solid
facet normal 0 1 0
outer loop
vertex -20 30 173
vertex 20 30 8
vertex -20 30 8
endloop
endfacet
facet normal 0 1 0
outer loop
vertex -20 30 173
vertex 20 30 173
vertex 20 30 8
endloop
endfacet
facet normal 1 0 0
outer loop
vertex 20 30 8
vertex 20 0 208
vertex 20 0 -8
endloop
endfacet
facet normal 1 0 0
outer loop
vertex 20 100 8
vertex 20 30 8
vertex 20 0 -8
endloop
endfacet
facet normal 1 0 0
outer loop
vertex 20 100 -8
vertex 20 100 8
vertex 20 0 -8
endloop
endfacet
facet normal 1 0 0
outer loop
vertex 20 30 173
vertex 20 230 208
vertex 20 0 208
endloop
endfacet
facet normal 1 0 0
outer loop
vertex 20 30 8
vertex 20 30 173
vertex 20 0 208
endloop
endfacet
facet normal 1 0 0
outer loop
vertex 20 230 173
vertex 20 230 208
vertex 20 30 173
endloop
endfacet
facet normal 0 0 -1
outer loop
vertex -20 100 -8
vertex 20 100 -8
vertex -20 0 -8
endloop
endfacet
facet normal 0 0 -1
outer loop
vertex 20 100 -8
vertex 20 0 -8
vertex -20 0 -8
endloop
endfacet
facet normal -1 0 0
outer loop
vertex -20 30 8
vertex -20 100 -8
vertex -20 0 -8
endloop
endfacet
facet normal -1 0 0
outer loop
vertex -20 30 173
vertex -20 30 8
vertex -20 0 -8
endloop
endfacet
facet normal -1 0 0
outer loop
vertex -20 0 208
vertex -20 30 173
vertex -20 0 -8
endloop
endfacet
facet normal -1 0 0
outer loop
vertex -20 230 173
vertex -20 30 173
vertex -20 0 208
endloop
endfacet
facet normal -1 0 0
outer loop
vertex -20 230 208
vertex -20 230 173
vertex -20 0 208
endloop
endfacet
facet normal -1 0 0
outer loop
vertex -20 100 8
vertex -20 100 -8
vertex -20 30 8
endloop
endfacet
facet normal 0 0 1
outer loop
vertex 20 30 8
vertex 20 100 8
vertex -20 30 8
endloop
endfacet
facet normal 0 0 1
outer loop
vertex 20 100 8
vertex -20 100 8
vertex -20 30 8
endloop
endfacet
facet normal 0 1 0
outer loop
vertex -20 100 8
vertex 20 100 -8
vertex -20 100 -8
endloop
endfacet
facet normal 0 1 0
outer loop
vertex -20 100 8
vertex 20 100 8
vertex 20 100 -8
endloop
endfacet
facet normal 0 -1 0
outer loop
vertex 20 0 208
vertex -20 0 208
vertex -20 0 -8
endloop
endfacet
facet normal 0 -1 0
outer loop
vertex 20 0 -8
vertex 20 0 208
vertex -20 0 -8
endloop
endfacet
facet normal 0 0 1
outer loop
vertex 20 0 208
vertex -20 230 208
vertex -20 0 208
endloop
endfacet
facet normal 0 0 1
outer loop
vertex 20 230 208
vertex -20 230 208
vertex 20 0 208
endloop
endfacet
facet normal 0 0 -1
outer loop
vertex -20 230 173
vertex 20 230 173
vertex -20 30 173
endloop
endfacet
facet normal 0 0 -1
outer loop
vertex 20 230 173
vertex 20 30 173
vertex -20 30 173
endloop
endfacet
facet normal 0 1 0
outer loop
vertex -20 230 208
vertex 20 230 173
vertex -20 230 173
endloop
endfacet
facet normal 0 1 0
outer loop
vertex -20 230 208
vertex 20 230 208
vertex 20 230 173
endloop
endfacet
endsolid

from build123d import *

# Parameters (mm, degrees)
SKETCH_1_W      = 40
SKETCH_1_H      = 16
EXTRUDE_1_DEPTH = 100
SKETCH_2_W      = 40
SKETCH_2_H      = 30
EXTRUDE_2_DEPTH = 200
SKETCH_3_W      = 40
SKETCH_3_H      = 35
EXTRUDE_3_DEPTH = 200


with BuildPart() as part:
    # 草图1 → 凸台-拉伸1 (new body)
    with BuildSketch(Plane(origin=(0, 0, 0), x_dir=(1, 0, 0), z_dir=(0, 1, 0))):
        Rectangle(SKETCH_1_W, SKETCH_1_H)
    extrude(amount=EXTRUDE_1_DEPTH)

    # 草图2 → 凸台-拉伸2 (add)
    with BuildSketch(Plane.XY.offset(8)):
        with Locations((0, 15)):
            Rectangle(SKETCH_2_W, SKETCH_2_H)
    extrude(amount=EXTRUDE_2_DEPTH)

    # 草图3 → 凸台-拉伸3 (add)
    with BuildSketch(Plane(origin=(0, 30, 0), x_dir=(1, 0, 0), z_dir=(0, 1, 0))):
        with Locations((0, -190.5)):
            Rectangle(SKETCH_3_W, SKETCH_3_H)
    extrude(amount=EXTRUDE_3_DEPTH)


solid = part.part
